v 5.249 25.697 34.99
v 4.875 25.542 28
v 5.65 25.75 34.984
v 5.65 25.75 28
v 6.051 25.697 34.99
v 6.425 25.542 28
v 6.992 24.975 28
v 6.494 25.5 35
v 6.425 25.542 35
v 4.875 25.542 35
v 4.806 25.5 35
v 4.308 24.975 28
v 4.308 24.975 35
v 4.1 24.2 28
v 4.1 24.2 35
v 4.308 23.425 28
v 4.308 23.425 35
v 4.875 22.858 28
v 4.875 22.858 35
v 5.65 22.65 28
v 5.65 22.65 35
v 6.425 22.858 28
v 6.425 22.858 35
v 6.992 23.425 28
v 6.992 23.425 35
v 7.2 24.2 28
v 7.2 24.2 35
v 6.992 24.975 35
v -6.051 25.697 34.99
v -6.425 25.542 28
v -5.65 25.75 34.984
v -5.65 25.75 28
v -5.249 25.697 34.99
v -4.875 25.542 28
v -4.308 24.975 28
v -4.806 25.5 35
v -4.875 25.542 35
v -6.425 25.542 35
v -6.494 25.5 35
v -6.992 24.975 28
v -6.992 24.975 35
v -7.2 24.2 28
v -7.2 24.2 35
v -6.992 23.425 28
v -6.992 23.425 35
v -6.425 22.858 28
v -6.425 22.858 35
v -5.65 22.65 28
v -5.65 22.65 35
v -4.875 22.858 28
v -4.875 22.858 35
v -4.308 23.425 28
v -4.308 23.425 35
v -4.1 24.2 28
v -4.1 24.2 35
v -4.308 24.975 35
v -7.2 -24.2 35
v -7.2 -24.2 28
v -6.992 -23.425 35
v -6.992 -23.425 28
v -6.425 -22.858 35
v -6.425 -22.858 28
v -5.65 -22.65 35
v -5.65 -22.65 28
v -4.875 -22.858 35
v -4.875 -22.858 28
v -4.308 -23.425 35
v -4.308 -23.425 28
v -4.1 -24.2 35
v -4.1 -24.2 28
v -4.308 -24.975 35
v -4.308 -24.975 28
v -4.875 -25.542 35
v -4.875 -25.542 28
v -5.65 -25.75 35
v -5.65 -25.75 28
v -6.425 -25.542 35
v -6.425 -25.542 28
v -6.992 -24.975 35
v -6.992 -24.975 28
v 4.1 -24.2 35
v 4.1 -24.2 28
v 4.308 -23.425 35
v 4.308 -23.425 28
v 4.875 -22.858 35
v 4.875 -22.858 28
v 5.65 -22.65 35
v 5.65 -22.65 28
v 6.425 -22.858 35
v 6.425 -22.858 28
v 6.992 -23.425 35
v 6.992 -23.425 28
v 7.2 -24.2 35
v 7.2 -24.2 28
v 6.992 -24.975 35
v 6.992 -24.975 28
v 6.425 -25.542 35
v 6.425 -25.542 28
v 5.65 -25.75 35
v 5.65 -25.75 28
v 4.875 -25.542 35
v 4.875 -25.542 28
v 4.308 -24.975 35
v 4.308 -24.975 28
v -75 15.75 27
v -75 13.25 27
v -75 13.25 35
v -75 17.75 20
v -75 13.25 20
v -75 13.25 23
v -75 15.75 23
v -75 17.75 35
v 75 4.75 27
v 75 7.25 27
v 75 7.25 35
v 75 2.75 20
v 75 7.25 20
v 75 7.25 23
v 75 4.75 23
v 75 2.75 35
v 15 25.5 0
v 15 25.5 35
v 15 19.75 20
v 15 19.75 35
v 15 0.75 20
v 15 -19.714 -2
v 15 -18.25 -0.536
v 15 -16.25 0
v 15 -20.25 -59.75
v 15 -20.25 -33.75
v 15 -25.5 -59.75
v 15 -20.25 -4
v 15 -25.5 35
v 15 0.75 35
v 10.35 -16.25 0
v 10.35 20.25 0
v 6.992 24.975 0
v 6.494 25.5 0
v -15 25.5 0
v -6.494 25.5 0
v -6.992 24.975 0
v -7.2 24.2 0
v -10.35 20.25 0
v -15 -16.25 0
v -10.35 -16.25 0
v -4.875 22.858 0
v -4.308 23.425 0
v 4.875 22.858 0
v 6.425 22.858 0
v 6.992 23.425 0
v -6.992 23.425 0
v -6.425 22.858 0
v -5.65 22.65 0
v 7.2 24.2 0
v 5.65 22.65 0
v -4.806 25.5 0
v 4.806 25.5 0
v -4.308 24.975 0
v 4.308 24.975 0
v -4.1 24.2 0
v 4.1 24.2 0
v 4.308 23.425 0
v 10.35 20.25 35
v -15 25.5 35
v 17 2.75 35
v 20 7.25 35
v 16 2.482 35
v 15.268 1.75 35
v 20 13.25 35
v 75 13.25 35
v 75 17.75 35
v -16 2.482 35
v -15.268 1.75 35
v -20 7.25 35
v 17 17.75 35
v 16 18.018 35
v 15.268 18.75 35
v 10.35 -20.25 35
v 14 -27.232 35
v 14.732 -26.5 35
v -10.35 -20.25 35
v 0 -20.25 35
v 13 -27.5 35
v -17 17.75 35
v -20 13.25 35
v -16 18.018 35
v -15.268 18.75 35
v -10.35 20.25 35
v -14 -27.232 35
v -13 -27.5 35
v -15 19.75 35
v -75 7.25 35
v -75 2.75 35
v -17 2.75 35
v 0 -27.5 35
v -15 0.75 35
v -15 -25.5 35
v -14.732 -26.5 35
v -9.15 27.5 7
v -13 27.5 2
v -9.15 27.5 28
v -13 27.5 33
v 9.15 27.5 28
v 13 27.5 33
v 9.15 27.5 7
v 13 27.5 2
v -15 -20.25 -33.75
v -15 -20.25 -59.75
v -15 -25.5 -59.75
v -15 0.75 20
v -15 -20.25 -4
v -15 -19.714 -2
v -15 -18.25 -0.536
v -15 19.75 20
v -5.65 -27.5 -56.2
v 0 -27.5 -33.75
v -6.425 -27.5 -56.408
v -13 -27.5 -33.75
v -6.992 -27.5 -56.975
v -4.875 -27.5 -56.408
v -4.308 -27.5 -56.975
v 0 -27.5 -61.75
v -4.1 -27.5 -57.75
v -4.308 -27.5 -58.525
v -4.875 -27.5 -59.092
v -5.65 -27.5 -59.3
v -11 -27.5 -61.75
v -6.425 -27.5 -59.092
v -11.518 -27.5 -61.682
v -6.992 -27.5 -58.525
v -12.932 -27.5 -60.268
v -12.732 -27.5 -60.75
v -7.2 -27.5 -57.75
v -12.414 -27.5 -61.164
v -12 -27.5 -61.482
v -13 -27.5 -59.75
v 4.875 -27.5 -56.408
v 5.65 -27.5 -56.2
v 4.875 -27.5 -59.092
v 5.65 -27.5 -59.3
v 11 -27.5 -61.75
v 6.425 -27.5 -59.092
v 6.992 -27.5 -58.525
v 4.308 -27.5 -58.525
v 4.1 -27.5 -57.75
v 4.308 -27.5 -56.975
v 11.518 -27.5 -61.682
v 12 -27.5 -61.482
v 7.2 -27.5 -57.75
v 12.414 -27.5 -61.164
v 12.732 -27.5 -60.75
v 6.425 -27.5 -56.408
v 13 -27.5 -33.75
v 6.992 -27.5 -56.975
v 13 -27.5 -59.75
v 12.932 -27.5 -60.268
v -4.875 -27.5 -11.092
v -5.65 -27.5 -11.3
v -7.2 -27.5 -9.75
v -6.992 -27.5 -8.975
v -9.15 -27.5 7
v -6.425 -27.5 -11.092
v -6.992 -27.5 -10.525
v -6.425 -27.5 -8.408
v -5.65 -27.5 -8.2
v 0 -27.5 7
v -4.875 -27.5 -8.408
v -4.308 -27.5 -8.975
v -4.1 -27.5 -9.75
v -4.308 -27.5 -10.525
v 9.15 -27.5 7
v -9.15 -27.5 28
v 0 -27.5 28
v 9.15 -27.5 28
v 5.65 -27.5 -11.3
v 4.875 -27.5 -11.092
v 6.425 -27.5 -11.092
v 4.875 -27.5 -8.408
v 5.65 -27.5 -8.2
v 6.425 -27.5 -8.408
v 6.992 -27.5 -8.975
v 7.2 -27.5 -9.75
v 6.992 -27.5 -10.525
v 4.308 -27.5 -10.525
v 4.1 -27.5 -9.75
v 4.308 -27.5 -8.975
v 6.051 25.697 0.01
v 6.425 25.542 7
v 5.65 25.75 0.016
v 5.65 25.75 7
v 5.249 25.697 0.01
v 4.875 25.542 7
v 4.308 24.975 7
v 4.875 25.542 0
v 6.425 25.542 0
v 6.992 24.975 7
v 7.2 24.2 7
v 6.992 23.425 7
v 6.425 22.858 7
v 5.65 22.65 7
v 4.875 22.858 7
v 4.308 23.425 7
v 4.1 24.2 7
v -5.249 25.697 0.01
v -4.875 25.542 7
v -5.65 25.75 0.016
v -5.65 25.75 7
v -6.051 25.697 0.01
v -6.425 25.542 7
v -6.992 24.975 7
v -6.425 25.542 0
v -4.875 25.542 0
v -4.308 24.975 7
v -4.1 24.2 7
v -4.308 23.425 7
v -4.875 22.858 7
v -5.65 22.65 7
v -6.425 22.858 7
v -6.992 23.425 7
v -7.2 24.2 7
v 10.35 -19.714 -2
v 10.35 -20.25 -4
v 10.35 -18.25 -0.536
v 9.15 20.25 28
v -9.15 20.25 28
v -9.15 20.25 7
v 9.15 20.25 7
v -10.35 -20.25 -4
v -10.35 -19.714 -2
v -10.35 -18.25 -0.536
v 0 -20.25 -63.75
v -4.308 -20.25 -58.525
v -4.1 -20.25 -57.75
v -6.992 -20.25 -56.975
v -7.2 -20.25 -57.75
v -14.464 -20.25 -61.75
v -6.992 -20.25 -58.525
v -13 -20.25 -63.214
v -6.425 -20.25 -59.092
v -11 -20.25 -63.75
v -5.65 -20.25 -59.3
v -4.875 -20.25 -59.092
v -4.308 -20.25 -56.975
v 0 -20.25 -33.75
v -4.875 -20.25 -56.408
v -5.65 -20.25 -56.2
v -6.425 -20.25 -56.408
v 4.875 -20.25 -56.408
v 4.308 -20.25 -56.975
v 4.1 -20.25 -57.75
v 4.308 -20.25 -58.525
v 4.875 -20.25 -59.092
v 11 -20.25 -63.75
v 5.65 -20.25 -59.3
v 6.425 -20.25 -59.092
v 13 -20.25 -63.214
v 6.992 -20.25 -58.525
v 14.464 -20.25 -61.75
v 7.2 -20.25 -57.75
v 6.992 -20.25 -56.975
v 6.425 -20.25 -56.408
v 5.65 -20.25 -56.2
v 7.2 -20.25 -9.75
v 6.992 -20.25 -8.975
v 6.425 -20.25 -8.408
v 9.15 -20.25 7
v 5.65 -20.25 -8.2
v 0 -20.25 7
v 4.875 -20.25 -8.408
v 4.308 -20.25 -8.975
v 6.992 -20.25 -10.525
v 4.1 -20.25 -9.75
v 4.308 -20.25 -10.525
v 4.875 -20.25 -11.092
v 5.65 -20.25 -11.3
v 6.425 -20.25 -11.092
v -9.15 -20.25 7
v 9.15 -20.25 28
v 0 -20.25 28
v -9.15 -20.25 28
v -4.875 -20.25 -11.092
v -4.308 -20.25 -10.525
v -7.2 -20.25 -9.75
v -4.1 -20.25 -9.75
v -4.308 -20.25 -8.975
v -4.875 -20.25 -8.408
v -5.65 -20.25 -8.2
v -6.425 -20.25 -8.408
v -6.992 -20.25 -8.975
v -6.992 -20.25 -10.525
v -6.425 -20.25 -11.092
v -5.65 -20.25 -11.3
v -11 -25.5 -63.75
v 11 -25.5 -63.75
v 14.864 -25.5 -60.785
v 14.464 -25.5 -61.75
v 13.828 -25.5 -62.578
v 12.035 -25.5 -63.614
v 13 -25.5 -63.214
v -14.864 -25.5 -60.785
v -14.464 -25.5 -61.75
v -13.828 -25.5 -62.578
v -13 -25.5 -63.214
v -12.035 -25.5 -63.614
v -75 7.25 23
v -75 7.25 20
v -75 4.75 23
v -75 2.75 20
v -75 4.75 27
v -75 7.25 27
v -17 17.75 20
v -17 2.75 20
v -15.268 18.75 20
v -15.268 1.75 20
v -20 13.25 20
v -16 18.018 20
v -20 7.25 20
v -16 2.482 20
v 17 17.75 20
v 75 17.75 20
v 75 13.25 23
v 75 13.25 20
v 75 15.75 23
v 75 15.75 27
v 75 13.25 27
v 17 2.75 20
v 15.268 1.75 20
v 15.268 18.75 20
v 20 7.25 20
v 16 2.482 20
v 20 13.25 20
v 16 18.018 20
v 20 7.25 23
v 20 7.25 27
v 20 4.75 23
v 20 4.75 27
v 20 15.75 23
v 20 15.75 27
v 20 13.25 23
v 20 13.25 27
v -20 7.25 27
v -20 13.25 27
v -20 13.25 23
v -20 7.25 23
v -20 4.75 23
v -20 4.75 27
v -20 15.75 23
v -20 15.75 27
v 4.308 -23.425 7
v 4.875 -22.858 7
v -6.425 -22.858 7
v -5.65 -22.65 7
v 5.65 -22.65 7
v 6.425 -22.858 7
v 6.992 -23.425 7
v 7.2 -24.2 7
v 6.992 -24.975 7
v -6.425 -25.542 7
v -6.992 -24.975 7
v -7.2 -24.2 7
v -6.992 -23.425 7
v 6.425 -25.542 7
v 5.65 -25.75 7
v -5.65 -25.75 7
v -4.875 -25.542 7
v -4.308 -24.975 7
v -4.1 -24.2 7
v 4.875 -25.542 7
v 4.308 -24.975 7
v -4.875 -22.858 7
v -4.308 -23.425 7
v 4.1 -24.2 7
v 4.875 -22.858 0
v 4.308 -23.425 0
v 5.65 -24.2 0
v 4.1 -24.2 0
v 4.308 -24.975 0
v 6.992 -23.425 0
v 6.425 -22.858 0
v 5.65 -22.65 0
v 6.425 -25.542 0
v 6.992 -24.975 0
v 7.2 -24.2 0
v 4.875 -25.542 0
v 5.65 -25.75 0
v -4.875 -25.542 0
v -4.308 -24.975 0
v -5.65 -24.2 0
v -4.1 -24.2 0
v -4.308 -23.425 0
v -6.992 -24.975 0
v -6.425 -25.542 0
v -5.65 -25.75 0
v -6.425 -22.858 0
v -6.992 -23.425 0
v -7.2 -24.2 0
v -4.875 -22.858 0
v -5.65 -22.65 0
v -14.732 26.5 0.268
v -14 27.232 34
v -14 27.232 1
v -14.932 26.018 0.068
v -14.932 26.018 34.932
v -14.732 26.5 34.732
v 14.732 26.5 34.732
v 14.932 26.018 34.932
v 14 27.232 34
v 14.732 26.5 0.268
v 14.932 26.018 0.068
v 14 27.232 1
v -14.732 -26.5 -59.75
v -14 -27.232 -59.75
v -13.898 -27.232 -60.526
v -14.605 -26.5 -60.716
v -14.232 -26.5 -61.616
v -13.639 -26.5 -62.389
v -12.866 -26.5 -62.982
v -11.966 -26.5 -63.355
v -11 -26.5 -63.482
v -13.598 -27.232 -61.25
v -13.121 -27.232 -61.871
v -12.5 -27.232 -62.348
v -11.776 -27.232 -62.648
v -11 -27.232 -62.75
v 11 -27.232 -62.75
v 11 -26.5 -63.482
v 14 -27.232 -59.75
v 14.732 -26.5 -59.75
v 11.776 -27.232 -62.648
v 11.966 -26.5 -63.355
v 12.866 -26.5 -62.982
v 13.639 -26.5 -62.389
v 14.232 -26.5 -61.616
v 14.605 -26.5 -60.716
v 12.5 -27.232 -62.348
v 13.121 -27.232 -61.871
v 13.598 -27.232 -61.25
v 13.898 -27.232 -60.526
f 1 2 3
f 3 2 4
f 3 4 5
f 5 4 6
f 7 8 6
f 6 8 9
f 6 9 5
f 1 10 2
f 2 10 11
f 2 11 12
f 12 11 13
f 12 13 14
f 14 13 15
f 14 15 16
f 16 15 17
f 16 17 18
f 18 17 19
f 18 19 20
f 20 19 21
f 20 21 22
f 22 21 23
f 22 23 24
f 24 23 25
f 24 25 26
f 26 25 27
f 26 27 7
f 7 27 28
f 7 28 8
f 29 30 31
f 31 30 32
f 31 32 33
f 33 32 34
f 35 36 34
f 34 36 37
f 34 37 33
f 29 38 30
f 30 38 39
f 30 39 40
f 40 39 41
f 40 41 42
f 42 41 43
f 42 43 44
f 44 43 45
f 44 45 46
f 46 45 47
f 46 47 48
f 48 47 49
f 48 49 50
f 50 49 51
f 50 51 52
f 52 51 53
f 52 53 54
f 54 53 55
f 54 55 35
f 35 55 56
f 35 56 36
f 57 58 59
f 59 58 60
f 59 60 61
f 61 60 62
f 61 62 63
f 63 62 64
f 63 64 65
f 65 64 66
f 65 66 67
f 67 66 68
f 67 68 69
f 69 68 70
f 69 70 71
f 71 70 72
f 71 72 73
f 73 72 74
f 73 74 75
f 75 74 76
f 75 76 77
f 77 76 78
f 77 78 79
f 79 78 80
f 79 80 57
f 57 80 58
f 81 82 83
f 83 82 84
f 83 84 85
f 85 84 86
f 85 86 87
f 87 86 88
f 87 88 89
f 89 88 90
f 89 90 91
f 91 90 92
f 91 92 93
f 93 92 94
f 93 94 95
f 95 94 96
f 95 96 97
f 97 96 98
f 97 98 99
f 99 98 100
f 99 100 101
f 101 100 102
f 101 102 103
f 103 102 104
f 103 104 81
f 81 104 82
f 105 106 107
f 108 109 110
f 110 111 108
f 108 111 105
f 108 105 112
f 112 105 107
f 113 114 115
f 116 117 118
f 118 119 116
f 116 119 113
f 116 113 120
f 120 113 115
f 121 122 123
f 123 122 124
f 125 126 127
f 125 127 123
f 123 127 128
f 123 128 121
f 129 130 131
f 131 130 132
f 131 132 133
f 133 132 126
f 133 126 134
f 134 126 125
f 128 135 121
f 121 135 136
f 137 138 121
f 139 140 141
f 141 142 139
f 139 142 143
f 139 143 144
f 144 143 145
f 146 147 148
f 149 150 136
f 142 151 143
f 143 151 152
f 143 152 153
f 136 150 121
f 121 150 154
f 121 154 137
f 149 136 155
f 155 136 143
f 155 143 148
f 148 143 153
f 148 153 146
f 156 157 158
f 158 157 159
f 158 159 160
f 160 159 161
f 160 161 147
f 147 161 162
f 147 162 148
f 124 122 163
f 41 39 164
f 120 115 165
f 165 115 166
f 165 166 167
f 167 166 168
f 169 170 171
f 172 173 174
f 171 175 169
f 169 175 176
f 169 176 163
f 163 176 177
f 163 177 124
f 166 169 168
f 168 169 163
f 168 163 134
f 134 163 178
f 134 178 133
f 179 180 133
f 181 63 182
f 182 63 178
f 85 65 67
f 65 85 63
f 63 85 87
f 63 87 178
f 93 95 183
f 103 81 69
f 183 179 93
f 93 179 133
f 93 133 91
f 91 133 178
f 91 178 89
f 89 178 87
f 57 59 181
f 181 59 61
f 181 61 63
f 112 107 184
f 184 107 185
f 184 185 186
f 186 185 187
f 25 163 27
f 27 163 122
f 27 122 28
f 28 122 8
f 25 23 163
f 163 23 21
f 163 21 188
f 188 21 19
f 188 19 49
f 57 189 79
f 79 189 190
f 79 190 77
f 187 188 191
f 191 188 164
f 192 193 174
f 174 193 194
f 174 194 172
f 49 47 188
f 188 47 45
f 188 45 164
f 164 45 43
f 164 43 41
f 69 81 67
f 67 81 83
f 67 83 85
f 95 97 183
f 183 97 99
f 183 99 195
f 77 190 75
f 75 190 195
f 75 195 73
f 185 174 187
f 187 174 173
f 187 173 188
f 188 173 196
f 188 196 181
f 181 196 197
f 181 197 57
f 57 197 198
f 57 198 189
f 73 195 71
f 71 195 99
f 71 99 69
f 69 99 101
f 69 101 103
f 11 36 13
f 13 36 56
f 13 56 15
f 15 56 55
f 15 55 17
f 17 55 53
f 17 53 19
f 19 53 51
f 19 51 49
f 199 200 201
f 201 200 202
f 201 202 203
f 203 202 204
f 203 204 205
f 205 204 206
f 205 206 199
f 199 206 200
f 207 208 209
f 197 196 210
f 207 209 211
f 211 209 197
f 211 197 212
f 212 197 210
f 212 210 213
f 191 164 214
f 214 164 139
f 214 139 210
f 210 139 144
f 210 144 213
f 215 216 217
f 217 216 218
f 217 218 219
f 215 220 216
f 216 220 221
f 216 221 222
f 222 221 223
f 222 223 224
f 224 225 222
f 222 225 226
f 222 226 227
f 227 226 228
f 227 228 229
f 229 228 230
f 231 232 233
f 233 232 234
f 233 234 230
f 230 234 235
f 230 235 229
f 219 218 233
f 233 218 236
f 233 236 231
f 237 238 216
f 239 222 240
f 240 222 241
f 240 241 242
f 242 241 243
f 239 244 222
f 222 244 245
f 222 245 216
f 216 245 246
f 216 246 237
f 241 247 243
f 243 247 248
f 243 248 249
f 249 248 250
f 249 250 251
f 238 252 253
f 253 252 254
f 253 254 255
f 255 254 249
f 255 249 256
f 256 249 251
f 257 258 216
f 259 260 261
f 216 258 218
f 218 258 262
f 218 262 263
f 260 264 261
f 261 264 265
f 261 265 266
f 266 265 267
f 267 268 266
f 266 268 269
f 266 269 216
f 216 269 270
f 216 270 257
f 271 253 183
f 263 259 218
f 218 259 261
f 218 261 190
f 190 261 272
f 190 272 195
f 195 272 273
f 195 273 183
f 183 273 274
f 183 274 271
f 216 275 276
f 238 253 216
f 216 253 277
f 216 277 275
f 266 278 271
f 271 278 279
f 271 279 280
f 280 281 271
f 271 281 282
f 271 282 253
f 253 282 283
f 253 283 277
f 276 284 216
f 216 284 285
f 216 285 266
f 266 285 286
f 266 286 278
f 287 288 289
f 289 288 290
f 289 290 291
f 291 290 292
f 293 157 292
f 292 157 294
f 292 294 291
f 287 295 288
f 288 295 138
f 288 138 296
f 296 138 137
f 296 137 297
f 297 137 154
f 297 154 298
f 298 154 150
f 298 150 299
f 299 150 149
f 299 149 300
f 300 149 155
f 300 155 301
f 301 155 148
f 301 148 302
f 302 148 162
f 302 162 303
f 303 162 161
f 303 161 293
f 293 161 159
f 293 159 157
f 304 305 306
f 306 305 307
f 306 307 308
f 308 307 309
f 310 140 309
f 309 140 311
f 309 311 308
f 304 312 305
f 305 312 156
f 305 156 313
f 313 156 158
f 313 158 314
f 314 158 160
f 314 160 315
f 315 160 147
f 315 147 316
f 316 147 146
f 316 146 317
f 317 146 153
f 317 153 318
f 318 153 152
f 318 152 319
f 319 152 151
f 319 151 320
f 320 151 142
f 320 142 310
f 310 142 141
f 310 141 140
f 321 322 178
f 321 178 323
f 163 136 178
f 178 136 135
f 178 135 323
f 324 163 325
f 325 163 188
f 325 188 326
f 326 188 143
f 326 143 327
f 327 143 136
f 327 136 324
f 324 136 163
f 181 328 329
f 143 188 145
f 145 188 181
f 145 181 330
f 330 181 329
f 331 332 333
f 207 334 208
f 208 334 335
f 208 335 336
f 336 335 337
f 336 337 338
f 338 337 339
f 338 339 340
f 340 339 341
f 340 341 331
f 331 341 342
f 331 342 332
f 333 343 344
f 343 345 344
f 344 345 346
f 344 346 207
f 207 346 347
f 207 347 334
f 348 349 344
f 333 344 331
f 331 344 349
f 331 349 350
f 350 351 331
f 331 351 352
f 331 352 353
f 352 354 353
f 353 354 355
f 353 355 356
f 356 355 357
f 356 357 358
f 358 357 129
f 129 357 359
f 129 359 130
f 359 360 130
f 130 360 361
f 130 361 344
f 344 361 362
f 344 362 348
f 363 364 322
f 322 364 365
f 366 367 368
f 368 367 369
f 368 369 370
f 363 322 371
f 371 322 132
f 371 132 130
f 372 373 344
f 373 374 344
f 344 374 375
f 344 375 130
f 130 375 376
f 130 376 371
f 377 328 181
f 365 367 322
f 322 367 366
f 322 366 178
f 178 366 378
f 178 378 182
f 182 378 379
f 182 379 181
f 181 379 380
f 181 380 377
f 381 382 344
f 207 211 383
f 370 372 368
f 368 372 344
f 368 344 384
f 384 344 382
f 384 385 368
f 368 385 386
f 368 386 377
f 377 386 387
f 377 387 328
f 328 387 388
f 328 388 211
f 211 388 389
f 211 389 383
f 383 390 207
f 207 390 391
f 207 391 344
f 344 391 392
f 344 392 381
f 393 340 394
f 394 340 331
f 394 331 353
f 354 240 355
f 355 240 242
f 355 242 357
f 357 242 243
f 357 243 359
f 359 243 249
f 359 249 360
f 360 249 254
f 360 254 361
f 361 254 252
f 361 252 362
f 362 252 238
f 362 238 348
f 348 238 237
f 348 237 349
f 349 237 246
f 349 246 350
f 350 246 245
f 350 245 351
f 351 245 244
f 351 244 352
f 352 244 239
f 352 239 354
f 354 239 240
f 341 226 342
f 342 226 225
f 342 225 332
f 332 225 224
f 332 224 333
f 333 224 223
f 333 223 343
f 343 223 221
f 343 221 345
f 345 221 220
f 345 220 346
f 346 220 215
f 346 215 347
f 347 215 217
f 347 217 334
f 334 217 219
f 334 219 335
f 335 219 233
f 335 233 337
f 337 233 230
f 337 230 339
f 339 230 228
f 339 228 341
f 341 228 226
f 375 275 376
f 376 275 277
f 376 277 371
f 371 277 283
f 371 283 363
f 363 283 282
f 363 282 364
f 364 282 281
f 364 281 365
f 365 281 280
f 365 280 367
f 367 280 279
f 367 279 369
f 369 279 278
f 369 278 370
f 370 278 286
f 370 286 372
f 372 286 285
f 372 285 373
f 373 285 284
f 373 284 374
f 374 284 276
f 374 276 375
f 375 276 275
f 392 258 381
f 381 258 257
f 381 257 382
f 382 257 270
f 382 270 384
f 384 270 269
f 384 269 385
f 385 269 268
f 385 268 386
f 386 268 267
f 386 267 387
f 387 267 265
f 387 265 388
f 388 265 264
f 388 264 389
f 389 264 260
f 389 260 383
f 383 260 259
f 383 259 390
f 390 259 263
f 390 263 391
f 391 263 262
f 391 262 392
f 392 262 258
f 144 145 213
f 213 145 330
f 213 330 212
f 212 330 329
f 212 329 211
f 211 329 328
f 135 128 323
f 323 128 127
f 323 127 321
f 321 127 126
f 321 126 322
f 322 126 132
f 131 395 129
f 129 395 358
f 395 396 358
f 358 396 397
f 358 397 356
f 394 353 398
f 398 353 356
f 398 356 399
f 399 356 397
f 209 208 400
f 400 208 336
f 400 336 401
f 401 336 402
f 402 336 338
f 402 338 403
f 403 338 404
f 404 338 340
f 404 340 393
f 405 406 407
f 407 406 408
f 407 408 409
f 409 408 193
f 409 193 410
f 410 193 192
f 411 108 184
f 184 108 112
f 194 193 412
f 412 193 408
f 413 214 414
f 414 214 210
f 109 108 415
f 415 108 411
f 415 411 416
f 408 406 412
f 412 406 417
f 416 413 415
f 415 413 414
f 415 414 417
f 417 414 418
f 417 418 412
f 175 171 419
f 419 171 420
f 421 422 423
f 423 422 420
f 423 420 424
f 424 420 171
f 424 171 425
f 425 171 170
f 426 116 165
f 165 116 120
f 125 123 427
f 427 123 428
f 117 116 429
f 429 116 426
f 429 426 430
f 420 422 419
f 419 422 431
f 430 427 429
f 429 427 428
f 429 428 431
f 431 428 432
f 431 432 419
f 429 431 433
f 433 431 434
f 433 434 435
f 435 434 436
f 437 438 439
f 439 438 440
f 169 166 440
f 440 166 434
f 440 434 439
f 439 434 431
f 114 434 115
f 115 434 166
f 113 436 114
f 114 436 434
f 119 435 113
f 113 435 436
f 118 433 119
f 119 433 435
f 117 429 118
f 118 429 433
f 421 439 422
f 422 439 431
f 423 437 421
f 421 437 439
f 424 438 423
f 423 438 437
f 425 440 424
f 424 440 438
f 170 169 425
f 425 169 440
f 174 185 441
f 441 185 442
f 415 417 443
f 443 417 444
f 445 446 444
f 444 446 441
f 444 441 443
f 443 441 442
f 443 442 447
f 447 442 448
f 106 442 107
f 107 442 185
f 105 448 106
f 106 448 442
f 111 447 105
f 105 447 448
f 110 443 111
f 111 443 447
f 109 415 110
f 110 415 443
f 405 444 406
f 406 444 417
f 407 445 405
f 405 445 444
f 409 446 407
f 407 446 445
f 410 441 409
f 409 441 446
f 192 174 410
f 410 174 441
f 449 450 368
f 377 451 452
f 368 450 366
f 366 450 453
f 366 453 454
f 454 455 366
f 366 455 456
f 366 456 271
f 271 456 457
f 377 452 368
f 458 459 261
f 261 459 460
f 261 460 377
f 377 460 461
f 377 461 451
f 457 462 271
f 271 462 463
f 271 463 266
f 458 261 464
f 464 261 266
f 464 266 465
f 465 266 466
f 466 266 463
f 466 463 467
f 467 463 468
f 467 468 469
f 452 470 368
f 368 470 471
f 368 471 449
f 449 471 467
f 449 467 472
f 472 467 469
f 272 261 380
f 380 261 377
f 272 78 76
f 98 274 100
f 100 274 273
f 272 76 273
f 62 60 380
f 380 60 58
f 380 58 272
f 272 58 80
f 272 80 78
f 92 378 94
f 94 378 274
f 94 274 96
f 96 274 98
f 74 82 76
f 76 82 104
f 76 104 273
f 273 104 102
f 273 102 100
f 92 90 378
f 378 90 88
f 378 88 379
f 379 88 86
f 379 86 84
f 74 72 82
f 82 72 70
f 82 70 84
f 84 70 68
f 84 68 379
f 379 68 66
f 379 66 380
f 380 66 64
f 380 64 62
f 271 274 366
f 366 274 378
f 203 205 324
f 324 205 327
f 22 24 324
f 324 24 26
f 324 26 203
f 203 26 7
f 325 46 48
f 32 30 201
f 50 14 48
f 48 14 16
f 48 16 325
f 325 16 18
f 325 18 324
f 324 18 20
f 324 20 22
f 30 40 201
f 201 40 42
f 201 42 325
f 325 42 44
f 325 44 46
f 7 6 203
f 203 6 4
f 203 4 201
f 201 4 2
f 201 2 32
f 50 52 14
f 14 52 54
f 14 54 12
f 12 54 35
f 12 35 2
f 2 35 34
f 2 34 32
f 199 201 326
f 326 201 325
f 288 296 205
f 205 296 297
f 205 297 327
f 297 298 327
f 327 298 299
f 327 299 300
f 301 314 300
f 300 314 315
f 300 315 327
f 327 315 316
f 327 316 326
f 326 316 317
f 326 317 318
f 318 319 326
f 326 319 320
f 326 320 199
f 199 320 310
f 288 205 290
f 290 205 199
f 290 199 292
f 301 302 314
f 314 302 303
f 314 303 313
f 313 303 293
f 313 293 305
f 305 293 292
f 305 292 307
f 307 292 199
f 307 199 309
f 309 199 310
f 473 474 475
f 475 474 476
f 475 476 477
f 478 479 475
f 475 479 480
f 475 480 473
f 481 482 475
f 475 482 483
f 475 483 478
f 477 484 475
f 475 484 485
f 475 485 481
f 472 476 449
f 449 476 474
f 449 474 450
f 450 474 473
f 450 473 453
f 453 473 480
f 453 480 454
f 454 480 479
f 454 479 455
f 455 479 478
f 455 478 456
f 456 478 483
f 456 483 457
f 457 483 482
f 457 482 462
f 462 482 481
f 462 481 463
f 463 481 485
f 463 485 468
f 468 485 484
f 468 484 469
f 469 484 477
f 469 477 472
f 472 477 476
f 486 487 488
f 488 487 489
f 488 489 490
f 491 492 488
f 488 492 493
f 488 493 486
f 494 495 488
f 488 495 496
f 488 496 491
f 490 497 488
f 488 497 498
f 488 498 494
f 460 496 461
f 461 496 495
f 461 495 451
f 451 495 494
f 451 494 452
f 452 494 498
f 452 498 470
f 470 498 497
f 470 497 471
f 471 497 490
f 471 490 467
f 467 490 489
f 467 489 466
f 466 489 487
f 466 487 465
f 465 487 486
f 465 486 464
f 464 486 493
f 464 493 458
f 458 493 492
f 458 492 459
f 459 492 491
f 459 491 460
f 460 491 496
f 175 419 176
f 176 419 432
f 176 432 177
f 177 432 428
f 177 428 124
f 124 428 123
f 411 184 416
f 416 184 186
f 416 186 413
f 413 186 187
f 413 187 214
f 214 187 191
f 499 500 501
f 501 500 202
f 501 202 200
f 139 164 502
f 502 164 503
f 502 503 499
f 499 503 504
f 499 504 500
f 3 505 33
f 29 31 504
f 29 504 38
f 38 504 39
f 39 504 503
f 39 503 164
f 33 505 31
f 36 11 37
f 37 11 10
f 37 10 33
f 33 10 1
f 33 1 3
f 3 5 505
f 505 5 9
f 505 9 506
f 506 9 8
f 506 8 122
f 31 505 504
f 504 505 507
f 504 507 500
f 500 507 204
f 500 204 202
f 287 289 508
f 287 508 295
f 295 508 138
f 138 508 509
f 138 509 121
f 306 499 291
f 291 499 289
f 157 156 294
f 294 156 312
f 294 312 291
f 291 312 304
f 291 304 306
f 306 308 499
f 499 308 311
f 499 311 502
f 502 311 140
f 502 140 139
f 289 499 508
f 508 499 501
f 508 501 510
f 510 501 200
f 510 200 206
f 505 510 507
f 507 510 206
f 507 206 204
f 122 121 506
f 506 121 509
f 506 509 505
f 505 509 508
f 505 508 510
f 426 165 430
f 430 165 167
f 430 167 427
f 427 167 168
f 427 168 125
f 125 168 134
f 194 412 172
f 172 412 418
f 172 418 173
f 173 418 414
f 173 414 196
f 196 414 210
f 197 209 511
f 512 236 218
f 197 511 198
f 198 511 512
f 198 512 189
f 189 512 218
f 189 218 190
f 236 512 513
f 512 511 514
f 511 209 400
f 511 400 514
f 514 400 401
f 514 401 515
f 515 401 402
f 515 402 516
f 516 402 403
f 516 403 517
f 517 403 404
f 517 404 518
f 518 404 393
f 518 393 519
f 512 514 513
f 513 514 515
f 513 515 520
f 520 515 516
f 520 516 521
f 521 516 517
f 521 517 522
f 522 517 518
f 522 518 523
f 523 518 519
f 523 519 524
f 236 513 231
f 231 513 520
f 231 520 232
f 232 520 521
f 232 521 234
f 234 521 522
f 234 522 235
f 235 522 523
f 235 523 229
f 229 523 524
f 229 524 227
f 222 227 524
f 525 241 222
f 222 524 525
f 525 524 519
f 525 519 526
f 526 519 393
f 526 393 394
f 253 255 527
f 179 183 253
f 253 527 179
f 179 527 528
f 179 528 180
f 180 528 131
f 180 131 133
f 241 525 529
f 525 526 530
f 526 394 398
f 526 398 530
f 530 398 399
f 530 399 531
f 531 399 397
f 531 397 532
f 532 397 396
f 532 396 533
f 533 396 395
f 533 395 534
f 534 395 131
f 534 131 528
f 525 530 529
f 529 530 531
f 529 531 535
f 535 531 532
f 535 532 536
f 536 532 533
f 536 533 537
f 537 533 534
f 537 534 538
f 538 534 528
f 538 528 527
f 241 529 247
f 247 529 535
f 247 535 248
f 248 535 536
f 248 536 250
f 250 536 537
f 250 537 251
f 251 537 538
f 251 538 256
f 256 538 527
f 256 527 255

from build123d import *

# Parameters (mm, degrees)
SKETCH1_W           = 30
SKETCH1_H           = 55
SKETCH1_R           = 1.55
SKETCH1_W_2         = 20.7
SKETCH1_H_2         = 40.5
BOSS_EXTRUDE1_DEPTH = 35
SKETCH11_W          = 30
SKETCH11_H          = 7.25
BOSS_EXTRUDE5_DEPTH = 63.75
SKETCH12_R          = 1.55
CUT_EXTRUDE2_DEPTH  = 13
LPATTERN2_COUNT     = 2
LPATTERN2_PITCH     = 48
FILLET1_R           = 4
SKETCH13_W          = 60
SKETCH13_H          = 15
BOSS_EXTRUDE6_DEPTH = 15
CUT_EXTRUDE3_DEPTH  = 55
CUT_EXTRUDE4_DEPTH  = 55
SKETCH18_W          = 18.3
SKETCH18_H          = 21
CUT_EXTRUDE5_DEPTH  = 113.756651688
FILLET6_R           = 2
FILLET7_R           = 2
FILLET8_R           = 2


with BuildPart() as part:
    # Sketch1 → Boss-Extrude1 (new body)
    with BuildSketch(Plane.XY):
        Rectangle(SKETCH1_W, SKETCH1_H)
        with Locations((5.65, 24.2)):
            Circle(SKETCH1_R, mode=Mode.SUBTRACT)
        with Locations(Location((-5.65, 24.2, 0), (0, 0, 180))):
            Circle(SKETCH1_R, mode=Mode.SUBTRACT)
        with Locations((-5.65, -24.2)):
            Circle(SKETCH1_R, mode=Mode.SUBTRACT)
        with Locations(Location((5.65, -24.2, 0), (0, 0, 180))):
            Circle(SKETCH1_R, mode=Mode.SUBTRACT)
        Rectangle(SKETCH1_W_2, SKETCH1_H_2, mode=Mode.SUBTRACT)
    extrude(amount=BOSS_EXTRUDE1_DEPTH)

    # Sketch11 → Boss-Extrude5 (add)
    with BuildSketch(Plane(origin=(0, 0, 0), x_dir=(-1, 0, 0), z_dir=(0, 0, -1))):
        with Locations((0, -23.875)):
            Rectangle(SKETCH11_W, SKETCH11_H)
    extrude(amount=BOSS_EXTRUDE5_DEPTH)

    # Sketch12 → Cut-Extrude2 (cut)
    with BuildSketch(Plane.XZ.offset(27.5)):
        with Locations(Location((-5.65, -57.75, 0), (0, 0, 270))):
            Circle(SKETCH12_R)
        with Locations(Location((5.65, -57.75, 0), (0, 0, 270))):
            Circle(SKETCH12_R)
    cut_extrude2 = extrude(amount=-CUT_EXTRUDE2_DEPTH, mode=Mode.SUBTRACT)

    # LPattern2: Cut-Extrude2 ×2
    with Locations(*[(0, 0, i * LPATTERN2_PITCH) for i in range(1, LPATTERN2_COUNT)]):
        add(cut_extrude2, mode=Mode.SUBTRACT)

    # Fillet1
    fillet1_edges = [part.edges().sort_by_distance(p)[0] for p in [
        (12.675, -20.25, 0),
        (-12.675, -20.25, 0),
        (15, -23.875, -63.75),
        (-15, -23.875, -63.75),
    ]]
    fillet(fillet1_edges, radius=FILLET1_R)

    # Sketch13 → Boss-Extrude6 (add)
    with BuildSketch(Plane.XY.offset(35)):
        with Locations((-45, 10.25)):
            Rectangle(SKETCH13_W, SKETCH13_H)
        with Locations((45, 10.25)):
            Rectangle(SKETCH13_W, SKETCH13_H)
    extrude(amount=-BOSS_EXTRUDE6_DEPTH)

    # Sketch14 → Cut-Extrude3 (cut)
    with BuildSketch(Plane(origin=(75, 0, 0), x_dir=(0, 0, -1), z_dir=(1, 0, 0))):
        Polygon((-35, 13.25), (-35, 7.25), (-27, 7.25), (-27, 4.75), (-23, 4.75), (-23, 7.25), (-20, 7.25), (-20, 13.25), (-23, 13.25), (-23, 15.75), (-27, 15.75), (-27, 13.25), align=None)
    extrude(amount=-CUT_EXTRUDE3_DEPTH, mode=Mode.SUBTRACT)

    # Sketch17 → Cut-Extrude4 (cut)
    with BuildSketch(Plane.ZY.offset(75)):
        Polygon((35, 7.25), (35, 13.25), (27, 13.25), (27, 15.75), (23, 15.75), (23, 13.25), (20, 13.25), (20, 7.25), (23, 7.25), (23, 4.75), (27, 4.75), (27, 7.25), align=None)
    extrude(amount=-CUT_EXTRUDE4_DEPTH, mode=Mode.SUBTRACT)

    # Sketch18 → Cut-Extrude5 (cut, through all)
    with BuildSketch(Plane(origin=(0, 27.5, 0), x_dir=(1, 0, 0), z_dir=(0, 1, 0))):
        with Locations((0, -17.5)):
            Rectangle(SKETCH18_W, SKETCH18_H)
    extrude(amount=-CUT_EXTRUDE5_DEPTH, mode=Mode.SUBTRACT)

    # Fillet6
    # the kernel refuses this fillet: 2 mm, written as the material it adds along each edge
    with BuildSketch(Plane(origin=(-15, 17.75, 35), x_dir=(0, 1, 0), z_dir=(0, 0, -1))) as fillet6_piece_1:
        with BuildLine():
            CenterArc((FILLET6_R, -FILLET6_R), FILLET6_R, 90, 90)
            Line((0, -FILLET6_R), (0, 0))
            Line((0, 0), (FILLET6_R, 0))
        make_face()
    extrude(amount=15)
    with BuildSketch(Plane(origin=(15, 17.75, 35), x_dir=(0, 1, 0), z_dir=(0, 0, -1))) as fillet6_piece_2:
        with BuildLine():
            CenterArc((FILLET6_R, FILLET6_R), FILLET6_R, 180, 90)
            Line((0, FILLET6_R), (0, 0))
            Line((0, 0), (FILLET6_R, 0))
        make_face()
    extrude(amount=15)
    # the kernel refuses this fillet: 2 mm, written as the material it takes off along each edge
    with BuildSketch(Plane(origin=(-20, 27.5, 0), x_dir=(0, 0, 1), z_dir=(1, 0, 0))) as fillet6_2_piece_1:
        with BuildLine():
            CenterArc((FILLET6_R, FILLET6_R), FILLET6_R, 180, 90)
            Line((0, FILLET6_R), (0, 0))
            Line((0, 0), (FILLET6_R, 0))
        make_face()
    extrude(amount=40, mode=Mode.SUBTRACT)
    with BuildSketch(Plane(origin=(-15, 27.5, -5), x_dir=(0, -1, 0), z_dir=(0, 0, 1)), Plane(origin=(15, 27.5, -5), x_dir=(-1, 0, 0), z_dir=(0, 0, 1))) as fillet6_2_piece_2:
        with BuildLine():
            CenterArc((FILLET6_R, FILLET6_R), FILLET6_R, 180, 90)
            Line((0, FILLET6_R), (0, 0))
            Line((0, 0), (FILLET6_R, 0))
        make_face()
    extrude(amount=45, mode=Mode.SUBTRACT)
    with BuildSketch(Plane(origin=(-20, 27.5, 35), x_dir=(0, 0, -1), z_dir=(1, 0, 0))) as fillet6_2_piece_3:
        with BuildLine():
            CenterArc((FILLET6_R, -FILLET6_R), FILLET6_R, 90, 90)
            Line((0, -FILLET6_R), (0, 0))
            Line((0, 0), (FILLET6_R, 0))
        make_face()
    extrude(amount=40, mode=Mode.SUBTRACT)

    # Fillet7
    fillet7_edges = [part.edges().sort_by_distance(p)[0] for p in [
        (-15, 2.75, 27.5),
        (15, 2.75, 27.5),
    ]]
    fillet(fillet7_edges, radius=FILLET7_R)

    # Fillet8
    fillet8_edges = [part.edges().sort_by_distance(p)[0] for p in [
        (15, -27.5, -12.375),
        (-15, -27.5, -12.375),
        (0, -27.5, -63.75),
        (-13.828427125, -27.5, -62.578427125),
        (13.828427125, -27.5, -62.578427125),
    ]]
    fillet(fillet8_edges, radius=FILLET8_R)


solid = part.part
